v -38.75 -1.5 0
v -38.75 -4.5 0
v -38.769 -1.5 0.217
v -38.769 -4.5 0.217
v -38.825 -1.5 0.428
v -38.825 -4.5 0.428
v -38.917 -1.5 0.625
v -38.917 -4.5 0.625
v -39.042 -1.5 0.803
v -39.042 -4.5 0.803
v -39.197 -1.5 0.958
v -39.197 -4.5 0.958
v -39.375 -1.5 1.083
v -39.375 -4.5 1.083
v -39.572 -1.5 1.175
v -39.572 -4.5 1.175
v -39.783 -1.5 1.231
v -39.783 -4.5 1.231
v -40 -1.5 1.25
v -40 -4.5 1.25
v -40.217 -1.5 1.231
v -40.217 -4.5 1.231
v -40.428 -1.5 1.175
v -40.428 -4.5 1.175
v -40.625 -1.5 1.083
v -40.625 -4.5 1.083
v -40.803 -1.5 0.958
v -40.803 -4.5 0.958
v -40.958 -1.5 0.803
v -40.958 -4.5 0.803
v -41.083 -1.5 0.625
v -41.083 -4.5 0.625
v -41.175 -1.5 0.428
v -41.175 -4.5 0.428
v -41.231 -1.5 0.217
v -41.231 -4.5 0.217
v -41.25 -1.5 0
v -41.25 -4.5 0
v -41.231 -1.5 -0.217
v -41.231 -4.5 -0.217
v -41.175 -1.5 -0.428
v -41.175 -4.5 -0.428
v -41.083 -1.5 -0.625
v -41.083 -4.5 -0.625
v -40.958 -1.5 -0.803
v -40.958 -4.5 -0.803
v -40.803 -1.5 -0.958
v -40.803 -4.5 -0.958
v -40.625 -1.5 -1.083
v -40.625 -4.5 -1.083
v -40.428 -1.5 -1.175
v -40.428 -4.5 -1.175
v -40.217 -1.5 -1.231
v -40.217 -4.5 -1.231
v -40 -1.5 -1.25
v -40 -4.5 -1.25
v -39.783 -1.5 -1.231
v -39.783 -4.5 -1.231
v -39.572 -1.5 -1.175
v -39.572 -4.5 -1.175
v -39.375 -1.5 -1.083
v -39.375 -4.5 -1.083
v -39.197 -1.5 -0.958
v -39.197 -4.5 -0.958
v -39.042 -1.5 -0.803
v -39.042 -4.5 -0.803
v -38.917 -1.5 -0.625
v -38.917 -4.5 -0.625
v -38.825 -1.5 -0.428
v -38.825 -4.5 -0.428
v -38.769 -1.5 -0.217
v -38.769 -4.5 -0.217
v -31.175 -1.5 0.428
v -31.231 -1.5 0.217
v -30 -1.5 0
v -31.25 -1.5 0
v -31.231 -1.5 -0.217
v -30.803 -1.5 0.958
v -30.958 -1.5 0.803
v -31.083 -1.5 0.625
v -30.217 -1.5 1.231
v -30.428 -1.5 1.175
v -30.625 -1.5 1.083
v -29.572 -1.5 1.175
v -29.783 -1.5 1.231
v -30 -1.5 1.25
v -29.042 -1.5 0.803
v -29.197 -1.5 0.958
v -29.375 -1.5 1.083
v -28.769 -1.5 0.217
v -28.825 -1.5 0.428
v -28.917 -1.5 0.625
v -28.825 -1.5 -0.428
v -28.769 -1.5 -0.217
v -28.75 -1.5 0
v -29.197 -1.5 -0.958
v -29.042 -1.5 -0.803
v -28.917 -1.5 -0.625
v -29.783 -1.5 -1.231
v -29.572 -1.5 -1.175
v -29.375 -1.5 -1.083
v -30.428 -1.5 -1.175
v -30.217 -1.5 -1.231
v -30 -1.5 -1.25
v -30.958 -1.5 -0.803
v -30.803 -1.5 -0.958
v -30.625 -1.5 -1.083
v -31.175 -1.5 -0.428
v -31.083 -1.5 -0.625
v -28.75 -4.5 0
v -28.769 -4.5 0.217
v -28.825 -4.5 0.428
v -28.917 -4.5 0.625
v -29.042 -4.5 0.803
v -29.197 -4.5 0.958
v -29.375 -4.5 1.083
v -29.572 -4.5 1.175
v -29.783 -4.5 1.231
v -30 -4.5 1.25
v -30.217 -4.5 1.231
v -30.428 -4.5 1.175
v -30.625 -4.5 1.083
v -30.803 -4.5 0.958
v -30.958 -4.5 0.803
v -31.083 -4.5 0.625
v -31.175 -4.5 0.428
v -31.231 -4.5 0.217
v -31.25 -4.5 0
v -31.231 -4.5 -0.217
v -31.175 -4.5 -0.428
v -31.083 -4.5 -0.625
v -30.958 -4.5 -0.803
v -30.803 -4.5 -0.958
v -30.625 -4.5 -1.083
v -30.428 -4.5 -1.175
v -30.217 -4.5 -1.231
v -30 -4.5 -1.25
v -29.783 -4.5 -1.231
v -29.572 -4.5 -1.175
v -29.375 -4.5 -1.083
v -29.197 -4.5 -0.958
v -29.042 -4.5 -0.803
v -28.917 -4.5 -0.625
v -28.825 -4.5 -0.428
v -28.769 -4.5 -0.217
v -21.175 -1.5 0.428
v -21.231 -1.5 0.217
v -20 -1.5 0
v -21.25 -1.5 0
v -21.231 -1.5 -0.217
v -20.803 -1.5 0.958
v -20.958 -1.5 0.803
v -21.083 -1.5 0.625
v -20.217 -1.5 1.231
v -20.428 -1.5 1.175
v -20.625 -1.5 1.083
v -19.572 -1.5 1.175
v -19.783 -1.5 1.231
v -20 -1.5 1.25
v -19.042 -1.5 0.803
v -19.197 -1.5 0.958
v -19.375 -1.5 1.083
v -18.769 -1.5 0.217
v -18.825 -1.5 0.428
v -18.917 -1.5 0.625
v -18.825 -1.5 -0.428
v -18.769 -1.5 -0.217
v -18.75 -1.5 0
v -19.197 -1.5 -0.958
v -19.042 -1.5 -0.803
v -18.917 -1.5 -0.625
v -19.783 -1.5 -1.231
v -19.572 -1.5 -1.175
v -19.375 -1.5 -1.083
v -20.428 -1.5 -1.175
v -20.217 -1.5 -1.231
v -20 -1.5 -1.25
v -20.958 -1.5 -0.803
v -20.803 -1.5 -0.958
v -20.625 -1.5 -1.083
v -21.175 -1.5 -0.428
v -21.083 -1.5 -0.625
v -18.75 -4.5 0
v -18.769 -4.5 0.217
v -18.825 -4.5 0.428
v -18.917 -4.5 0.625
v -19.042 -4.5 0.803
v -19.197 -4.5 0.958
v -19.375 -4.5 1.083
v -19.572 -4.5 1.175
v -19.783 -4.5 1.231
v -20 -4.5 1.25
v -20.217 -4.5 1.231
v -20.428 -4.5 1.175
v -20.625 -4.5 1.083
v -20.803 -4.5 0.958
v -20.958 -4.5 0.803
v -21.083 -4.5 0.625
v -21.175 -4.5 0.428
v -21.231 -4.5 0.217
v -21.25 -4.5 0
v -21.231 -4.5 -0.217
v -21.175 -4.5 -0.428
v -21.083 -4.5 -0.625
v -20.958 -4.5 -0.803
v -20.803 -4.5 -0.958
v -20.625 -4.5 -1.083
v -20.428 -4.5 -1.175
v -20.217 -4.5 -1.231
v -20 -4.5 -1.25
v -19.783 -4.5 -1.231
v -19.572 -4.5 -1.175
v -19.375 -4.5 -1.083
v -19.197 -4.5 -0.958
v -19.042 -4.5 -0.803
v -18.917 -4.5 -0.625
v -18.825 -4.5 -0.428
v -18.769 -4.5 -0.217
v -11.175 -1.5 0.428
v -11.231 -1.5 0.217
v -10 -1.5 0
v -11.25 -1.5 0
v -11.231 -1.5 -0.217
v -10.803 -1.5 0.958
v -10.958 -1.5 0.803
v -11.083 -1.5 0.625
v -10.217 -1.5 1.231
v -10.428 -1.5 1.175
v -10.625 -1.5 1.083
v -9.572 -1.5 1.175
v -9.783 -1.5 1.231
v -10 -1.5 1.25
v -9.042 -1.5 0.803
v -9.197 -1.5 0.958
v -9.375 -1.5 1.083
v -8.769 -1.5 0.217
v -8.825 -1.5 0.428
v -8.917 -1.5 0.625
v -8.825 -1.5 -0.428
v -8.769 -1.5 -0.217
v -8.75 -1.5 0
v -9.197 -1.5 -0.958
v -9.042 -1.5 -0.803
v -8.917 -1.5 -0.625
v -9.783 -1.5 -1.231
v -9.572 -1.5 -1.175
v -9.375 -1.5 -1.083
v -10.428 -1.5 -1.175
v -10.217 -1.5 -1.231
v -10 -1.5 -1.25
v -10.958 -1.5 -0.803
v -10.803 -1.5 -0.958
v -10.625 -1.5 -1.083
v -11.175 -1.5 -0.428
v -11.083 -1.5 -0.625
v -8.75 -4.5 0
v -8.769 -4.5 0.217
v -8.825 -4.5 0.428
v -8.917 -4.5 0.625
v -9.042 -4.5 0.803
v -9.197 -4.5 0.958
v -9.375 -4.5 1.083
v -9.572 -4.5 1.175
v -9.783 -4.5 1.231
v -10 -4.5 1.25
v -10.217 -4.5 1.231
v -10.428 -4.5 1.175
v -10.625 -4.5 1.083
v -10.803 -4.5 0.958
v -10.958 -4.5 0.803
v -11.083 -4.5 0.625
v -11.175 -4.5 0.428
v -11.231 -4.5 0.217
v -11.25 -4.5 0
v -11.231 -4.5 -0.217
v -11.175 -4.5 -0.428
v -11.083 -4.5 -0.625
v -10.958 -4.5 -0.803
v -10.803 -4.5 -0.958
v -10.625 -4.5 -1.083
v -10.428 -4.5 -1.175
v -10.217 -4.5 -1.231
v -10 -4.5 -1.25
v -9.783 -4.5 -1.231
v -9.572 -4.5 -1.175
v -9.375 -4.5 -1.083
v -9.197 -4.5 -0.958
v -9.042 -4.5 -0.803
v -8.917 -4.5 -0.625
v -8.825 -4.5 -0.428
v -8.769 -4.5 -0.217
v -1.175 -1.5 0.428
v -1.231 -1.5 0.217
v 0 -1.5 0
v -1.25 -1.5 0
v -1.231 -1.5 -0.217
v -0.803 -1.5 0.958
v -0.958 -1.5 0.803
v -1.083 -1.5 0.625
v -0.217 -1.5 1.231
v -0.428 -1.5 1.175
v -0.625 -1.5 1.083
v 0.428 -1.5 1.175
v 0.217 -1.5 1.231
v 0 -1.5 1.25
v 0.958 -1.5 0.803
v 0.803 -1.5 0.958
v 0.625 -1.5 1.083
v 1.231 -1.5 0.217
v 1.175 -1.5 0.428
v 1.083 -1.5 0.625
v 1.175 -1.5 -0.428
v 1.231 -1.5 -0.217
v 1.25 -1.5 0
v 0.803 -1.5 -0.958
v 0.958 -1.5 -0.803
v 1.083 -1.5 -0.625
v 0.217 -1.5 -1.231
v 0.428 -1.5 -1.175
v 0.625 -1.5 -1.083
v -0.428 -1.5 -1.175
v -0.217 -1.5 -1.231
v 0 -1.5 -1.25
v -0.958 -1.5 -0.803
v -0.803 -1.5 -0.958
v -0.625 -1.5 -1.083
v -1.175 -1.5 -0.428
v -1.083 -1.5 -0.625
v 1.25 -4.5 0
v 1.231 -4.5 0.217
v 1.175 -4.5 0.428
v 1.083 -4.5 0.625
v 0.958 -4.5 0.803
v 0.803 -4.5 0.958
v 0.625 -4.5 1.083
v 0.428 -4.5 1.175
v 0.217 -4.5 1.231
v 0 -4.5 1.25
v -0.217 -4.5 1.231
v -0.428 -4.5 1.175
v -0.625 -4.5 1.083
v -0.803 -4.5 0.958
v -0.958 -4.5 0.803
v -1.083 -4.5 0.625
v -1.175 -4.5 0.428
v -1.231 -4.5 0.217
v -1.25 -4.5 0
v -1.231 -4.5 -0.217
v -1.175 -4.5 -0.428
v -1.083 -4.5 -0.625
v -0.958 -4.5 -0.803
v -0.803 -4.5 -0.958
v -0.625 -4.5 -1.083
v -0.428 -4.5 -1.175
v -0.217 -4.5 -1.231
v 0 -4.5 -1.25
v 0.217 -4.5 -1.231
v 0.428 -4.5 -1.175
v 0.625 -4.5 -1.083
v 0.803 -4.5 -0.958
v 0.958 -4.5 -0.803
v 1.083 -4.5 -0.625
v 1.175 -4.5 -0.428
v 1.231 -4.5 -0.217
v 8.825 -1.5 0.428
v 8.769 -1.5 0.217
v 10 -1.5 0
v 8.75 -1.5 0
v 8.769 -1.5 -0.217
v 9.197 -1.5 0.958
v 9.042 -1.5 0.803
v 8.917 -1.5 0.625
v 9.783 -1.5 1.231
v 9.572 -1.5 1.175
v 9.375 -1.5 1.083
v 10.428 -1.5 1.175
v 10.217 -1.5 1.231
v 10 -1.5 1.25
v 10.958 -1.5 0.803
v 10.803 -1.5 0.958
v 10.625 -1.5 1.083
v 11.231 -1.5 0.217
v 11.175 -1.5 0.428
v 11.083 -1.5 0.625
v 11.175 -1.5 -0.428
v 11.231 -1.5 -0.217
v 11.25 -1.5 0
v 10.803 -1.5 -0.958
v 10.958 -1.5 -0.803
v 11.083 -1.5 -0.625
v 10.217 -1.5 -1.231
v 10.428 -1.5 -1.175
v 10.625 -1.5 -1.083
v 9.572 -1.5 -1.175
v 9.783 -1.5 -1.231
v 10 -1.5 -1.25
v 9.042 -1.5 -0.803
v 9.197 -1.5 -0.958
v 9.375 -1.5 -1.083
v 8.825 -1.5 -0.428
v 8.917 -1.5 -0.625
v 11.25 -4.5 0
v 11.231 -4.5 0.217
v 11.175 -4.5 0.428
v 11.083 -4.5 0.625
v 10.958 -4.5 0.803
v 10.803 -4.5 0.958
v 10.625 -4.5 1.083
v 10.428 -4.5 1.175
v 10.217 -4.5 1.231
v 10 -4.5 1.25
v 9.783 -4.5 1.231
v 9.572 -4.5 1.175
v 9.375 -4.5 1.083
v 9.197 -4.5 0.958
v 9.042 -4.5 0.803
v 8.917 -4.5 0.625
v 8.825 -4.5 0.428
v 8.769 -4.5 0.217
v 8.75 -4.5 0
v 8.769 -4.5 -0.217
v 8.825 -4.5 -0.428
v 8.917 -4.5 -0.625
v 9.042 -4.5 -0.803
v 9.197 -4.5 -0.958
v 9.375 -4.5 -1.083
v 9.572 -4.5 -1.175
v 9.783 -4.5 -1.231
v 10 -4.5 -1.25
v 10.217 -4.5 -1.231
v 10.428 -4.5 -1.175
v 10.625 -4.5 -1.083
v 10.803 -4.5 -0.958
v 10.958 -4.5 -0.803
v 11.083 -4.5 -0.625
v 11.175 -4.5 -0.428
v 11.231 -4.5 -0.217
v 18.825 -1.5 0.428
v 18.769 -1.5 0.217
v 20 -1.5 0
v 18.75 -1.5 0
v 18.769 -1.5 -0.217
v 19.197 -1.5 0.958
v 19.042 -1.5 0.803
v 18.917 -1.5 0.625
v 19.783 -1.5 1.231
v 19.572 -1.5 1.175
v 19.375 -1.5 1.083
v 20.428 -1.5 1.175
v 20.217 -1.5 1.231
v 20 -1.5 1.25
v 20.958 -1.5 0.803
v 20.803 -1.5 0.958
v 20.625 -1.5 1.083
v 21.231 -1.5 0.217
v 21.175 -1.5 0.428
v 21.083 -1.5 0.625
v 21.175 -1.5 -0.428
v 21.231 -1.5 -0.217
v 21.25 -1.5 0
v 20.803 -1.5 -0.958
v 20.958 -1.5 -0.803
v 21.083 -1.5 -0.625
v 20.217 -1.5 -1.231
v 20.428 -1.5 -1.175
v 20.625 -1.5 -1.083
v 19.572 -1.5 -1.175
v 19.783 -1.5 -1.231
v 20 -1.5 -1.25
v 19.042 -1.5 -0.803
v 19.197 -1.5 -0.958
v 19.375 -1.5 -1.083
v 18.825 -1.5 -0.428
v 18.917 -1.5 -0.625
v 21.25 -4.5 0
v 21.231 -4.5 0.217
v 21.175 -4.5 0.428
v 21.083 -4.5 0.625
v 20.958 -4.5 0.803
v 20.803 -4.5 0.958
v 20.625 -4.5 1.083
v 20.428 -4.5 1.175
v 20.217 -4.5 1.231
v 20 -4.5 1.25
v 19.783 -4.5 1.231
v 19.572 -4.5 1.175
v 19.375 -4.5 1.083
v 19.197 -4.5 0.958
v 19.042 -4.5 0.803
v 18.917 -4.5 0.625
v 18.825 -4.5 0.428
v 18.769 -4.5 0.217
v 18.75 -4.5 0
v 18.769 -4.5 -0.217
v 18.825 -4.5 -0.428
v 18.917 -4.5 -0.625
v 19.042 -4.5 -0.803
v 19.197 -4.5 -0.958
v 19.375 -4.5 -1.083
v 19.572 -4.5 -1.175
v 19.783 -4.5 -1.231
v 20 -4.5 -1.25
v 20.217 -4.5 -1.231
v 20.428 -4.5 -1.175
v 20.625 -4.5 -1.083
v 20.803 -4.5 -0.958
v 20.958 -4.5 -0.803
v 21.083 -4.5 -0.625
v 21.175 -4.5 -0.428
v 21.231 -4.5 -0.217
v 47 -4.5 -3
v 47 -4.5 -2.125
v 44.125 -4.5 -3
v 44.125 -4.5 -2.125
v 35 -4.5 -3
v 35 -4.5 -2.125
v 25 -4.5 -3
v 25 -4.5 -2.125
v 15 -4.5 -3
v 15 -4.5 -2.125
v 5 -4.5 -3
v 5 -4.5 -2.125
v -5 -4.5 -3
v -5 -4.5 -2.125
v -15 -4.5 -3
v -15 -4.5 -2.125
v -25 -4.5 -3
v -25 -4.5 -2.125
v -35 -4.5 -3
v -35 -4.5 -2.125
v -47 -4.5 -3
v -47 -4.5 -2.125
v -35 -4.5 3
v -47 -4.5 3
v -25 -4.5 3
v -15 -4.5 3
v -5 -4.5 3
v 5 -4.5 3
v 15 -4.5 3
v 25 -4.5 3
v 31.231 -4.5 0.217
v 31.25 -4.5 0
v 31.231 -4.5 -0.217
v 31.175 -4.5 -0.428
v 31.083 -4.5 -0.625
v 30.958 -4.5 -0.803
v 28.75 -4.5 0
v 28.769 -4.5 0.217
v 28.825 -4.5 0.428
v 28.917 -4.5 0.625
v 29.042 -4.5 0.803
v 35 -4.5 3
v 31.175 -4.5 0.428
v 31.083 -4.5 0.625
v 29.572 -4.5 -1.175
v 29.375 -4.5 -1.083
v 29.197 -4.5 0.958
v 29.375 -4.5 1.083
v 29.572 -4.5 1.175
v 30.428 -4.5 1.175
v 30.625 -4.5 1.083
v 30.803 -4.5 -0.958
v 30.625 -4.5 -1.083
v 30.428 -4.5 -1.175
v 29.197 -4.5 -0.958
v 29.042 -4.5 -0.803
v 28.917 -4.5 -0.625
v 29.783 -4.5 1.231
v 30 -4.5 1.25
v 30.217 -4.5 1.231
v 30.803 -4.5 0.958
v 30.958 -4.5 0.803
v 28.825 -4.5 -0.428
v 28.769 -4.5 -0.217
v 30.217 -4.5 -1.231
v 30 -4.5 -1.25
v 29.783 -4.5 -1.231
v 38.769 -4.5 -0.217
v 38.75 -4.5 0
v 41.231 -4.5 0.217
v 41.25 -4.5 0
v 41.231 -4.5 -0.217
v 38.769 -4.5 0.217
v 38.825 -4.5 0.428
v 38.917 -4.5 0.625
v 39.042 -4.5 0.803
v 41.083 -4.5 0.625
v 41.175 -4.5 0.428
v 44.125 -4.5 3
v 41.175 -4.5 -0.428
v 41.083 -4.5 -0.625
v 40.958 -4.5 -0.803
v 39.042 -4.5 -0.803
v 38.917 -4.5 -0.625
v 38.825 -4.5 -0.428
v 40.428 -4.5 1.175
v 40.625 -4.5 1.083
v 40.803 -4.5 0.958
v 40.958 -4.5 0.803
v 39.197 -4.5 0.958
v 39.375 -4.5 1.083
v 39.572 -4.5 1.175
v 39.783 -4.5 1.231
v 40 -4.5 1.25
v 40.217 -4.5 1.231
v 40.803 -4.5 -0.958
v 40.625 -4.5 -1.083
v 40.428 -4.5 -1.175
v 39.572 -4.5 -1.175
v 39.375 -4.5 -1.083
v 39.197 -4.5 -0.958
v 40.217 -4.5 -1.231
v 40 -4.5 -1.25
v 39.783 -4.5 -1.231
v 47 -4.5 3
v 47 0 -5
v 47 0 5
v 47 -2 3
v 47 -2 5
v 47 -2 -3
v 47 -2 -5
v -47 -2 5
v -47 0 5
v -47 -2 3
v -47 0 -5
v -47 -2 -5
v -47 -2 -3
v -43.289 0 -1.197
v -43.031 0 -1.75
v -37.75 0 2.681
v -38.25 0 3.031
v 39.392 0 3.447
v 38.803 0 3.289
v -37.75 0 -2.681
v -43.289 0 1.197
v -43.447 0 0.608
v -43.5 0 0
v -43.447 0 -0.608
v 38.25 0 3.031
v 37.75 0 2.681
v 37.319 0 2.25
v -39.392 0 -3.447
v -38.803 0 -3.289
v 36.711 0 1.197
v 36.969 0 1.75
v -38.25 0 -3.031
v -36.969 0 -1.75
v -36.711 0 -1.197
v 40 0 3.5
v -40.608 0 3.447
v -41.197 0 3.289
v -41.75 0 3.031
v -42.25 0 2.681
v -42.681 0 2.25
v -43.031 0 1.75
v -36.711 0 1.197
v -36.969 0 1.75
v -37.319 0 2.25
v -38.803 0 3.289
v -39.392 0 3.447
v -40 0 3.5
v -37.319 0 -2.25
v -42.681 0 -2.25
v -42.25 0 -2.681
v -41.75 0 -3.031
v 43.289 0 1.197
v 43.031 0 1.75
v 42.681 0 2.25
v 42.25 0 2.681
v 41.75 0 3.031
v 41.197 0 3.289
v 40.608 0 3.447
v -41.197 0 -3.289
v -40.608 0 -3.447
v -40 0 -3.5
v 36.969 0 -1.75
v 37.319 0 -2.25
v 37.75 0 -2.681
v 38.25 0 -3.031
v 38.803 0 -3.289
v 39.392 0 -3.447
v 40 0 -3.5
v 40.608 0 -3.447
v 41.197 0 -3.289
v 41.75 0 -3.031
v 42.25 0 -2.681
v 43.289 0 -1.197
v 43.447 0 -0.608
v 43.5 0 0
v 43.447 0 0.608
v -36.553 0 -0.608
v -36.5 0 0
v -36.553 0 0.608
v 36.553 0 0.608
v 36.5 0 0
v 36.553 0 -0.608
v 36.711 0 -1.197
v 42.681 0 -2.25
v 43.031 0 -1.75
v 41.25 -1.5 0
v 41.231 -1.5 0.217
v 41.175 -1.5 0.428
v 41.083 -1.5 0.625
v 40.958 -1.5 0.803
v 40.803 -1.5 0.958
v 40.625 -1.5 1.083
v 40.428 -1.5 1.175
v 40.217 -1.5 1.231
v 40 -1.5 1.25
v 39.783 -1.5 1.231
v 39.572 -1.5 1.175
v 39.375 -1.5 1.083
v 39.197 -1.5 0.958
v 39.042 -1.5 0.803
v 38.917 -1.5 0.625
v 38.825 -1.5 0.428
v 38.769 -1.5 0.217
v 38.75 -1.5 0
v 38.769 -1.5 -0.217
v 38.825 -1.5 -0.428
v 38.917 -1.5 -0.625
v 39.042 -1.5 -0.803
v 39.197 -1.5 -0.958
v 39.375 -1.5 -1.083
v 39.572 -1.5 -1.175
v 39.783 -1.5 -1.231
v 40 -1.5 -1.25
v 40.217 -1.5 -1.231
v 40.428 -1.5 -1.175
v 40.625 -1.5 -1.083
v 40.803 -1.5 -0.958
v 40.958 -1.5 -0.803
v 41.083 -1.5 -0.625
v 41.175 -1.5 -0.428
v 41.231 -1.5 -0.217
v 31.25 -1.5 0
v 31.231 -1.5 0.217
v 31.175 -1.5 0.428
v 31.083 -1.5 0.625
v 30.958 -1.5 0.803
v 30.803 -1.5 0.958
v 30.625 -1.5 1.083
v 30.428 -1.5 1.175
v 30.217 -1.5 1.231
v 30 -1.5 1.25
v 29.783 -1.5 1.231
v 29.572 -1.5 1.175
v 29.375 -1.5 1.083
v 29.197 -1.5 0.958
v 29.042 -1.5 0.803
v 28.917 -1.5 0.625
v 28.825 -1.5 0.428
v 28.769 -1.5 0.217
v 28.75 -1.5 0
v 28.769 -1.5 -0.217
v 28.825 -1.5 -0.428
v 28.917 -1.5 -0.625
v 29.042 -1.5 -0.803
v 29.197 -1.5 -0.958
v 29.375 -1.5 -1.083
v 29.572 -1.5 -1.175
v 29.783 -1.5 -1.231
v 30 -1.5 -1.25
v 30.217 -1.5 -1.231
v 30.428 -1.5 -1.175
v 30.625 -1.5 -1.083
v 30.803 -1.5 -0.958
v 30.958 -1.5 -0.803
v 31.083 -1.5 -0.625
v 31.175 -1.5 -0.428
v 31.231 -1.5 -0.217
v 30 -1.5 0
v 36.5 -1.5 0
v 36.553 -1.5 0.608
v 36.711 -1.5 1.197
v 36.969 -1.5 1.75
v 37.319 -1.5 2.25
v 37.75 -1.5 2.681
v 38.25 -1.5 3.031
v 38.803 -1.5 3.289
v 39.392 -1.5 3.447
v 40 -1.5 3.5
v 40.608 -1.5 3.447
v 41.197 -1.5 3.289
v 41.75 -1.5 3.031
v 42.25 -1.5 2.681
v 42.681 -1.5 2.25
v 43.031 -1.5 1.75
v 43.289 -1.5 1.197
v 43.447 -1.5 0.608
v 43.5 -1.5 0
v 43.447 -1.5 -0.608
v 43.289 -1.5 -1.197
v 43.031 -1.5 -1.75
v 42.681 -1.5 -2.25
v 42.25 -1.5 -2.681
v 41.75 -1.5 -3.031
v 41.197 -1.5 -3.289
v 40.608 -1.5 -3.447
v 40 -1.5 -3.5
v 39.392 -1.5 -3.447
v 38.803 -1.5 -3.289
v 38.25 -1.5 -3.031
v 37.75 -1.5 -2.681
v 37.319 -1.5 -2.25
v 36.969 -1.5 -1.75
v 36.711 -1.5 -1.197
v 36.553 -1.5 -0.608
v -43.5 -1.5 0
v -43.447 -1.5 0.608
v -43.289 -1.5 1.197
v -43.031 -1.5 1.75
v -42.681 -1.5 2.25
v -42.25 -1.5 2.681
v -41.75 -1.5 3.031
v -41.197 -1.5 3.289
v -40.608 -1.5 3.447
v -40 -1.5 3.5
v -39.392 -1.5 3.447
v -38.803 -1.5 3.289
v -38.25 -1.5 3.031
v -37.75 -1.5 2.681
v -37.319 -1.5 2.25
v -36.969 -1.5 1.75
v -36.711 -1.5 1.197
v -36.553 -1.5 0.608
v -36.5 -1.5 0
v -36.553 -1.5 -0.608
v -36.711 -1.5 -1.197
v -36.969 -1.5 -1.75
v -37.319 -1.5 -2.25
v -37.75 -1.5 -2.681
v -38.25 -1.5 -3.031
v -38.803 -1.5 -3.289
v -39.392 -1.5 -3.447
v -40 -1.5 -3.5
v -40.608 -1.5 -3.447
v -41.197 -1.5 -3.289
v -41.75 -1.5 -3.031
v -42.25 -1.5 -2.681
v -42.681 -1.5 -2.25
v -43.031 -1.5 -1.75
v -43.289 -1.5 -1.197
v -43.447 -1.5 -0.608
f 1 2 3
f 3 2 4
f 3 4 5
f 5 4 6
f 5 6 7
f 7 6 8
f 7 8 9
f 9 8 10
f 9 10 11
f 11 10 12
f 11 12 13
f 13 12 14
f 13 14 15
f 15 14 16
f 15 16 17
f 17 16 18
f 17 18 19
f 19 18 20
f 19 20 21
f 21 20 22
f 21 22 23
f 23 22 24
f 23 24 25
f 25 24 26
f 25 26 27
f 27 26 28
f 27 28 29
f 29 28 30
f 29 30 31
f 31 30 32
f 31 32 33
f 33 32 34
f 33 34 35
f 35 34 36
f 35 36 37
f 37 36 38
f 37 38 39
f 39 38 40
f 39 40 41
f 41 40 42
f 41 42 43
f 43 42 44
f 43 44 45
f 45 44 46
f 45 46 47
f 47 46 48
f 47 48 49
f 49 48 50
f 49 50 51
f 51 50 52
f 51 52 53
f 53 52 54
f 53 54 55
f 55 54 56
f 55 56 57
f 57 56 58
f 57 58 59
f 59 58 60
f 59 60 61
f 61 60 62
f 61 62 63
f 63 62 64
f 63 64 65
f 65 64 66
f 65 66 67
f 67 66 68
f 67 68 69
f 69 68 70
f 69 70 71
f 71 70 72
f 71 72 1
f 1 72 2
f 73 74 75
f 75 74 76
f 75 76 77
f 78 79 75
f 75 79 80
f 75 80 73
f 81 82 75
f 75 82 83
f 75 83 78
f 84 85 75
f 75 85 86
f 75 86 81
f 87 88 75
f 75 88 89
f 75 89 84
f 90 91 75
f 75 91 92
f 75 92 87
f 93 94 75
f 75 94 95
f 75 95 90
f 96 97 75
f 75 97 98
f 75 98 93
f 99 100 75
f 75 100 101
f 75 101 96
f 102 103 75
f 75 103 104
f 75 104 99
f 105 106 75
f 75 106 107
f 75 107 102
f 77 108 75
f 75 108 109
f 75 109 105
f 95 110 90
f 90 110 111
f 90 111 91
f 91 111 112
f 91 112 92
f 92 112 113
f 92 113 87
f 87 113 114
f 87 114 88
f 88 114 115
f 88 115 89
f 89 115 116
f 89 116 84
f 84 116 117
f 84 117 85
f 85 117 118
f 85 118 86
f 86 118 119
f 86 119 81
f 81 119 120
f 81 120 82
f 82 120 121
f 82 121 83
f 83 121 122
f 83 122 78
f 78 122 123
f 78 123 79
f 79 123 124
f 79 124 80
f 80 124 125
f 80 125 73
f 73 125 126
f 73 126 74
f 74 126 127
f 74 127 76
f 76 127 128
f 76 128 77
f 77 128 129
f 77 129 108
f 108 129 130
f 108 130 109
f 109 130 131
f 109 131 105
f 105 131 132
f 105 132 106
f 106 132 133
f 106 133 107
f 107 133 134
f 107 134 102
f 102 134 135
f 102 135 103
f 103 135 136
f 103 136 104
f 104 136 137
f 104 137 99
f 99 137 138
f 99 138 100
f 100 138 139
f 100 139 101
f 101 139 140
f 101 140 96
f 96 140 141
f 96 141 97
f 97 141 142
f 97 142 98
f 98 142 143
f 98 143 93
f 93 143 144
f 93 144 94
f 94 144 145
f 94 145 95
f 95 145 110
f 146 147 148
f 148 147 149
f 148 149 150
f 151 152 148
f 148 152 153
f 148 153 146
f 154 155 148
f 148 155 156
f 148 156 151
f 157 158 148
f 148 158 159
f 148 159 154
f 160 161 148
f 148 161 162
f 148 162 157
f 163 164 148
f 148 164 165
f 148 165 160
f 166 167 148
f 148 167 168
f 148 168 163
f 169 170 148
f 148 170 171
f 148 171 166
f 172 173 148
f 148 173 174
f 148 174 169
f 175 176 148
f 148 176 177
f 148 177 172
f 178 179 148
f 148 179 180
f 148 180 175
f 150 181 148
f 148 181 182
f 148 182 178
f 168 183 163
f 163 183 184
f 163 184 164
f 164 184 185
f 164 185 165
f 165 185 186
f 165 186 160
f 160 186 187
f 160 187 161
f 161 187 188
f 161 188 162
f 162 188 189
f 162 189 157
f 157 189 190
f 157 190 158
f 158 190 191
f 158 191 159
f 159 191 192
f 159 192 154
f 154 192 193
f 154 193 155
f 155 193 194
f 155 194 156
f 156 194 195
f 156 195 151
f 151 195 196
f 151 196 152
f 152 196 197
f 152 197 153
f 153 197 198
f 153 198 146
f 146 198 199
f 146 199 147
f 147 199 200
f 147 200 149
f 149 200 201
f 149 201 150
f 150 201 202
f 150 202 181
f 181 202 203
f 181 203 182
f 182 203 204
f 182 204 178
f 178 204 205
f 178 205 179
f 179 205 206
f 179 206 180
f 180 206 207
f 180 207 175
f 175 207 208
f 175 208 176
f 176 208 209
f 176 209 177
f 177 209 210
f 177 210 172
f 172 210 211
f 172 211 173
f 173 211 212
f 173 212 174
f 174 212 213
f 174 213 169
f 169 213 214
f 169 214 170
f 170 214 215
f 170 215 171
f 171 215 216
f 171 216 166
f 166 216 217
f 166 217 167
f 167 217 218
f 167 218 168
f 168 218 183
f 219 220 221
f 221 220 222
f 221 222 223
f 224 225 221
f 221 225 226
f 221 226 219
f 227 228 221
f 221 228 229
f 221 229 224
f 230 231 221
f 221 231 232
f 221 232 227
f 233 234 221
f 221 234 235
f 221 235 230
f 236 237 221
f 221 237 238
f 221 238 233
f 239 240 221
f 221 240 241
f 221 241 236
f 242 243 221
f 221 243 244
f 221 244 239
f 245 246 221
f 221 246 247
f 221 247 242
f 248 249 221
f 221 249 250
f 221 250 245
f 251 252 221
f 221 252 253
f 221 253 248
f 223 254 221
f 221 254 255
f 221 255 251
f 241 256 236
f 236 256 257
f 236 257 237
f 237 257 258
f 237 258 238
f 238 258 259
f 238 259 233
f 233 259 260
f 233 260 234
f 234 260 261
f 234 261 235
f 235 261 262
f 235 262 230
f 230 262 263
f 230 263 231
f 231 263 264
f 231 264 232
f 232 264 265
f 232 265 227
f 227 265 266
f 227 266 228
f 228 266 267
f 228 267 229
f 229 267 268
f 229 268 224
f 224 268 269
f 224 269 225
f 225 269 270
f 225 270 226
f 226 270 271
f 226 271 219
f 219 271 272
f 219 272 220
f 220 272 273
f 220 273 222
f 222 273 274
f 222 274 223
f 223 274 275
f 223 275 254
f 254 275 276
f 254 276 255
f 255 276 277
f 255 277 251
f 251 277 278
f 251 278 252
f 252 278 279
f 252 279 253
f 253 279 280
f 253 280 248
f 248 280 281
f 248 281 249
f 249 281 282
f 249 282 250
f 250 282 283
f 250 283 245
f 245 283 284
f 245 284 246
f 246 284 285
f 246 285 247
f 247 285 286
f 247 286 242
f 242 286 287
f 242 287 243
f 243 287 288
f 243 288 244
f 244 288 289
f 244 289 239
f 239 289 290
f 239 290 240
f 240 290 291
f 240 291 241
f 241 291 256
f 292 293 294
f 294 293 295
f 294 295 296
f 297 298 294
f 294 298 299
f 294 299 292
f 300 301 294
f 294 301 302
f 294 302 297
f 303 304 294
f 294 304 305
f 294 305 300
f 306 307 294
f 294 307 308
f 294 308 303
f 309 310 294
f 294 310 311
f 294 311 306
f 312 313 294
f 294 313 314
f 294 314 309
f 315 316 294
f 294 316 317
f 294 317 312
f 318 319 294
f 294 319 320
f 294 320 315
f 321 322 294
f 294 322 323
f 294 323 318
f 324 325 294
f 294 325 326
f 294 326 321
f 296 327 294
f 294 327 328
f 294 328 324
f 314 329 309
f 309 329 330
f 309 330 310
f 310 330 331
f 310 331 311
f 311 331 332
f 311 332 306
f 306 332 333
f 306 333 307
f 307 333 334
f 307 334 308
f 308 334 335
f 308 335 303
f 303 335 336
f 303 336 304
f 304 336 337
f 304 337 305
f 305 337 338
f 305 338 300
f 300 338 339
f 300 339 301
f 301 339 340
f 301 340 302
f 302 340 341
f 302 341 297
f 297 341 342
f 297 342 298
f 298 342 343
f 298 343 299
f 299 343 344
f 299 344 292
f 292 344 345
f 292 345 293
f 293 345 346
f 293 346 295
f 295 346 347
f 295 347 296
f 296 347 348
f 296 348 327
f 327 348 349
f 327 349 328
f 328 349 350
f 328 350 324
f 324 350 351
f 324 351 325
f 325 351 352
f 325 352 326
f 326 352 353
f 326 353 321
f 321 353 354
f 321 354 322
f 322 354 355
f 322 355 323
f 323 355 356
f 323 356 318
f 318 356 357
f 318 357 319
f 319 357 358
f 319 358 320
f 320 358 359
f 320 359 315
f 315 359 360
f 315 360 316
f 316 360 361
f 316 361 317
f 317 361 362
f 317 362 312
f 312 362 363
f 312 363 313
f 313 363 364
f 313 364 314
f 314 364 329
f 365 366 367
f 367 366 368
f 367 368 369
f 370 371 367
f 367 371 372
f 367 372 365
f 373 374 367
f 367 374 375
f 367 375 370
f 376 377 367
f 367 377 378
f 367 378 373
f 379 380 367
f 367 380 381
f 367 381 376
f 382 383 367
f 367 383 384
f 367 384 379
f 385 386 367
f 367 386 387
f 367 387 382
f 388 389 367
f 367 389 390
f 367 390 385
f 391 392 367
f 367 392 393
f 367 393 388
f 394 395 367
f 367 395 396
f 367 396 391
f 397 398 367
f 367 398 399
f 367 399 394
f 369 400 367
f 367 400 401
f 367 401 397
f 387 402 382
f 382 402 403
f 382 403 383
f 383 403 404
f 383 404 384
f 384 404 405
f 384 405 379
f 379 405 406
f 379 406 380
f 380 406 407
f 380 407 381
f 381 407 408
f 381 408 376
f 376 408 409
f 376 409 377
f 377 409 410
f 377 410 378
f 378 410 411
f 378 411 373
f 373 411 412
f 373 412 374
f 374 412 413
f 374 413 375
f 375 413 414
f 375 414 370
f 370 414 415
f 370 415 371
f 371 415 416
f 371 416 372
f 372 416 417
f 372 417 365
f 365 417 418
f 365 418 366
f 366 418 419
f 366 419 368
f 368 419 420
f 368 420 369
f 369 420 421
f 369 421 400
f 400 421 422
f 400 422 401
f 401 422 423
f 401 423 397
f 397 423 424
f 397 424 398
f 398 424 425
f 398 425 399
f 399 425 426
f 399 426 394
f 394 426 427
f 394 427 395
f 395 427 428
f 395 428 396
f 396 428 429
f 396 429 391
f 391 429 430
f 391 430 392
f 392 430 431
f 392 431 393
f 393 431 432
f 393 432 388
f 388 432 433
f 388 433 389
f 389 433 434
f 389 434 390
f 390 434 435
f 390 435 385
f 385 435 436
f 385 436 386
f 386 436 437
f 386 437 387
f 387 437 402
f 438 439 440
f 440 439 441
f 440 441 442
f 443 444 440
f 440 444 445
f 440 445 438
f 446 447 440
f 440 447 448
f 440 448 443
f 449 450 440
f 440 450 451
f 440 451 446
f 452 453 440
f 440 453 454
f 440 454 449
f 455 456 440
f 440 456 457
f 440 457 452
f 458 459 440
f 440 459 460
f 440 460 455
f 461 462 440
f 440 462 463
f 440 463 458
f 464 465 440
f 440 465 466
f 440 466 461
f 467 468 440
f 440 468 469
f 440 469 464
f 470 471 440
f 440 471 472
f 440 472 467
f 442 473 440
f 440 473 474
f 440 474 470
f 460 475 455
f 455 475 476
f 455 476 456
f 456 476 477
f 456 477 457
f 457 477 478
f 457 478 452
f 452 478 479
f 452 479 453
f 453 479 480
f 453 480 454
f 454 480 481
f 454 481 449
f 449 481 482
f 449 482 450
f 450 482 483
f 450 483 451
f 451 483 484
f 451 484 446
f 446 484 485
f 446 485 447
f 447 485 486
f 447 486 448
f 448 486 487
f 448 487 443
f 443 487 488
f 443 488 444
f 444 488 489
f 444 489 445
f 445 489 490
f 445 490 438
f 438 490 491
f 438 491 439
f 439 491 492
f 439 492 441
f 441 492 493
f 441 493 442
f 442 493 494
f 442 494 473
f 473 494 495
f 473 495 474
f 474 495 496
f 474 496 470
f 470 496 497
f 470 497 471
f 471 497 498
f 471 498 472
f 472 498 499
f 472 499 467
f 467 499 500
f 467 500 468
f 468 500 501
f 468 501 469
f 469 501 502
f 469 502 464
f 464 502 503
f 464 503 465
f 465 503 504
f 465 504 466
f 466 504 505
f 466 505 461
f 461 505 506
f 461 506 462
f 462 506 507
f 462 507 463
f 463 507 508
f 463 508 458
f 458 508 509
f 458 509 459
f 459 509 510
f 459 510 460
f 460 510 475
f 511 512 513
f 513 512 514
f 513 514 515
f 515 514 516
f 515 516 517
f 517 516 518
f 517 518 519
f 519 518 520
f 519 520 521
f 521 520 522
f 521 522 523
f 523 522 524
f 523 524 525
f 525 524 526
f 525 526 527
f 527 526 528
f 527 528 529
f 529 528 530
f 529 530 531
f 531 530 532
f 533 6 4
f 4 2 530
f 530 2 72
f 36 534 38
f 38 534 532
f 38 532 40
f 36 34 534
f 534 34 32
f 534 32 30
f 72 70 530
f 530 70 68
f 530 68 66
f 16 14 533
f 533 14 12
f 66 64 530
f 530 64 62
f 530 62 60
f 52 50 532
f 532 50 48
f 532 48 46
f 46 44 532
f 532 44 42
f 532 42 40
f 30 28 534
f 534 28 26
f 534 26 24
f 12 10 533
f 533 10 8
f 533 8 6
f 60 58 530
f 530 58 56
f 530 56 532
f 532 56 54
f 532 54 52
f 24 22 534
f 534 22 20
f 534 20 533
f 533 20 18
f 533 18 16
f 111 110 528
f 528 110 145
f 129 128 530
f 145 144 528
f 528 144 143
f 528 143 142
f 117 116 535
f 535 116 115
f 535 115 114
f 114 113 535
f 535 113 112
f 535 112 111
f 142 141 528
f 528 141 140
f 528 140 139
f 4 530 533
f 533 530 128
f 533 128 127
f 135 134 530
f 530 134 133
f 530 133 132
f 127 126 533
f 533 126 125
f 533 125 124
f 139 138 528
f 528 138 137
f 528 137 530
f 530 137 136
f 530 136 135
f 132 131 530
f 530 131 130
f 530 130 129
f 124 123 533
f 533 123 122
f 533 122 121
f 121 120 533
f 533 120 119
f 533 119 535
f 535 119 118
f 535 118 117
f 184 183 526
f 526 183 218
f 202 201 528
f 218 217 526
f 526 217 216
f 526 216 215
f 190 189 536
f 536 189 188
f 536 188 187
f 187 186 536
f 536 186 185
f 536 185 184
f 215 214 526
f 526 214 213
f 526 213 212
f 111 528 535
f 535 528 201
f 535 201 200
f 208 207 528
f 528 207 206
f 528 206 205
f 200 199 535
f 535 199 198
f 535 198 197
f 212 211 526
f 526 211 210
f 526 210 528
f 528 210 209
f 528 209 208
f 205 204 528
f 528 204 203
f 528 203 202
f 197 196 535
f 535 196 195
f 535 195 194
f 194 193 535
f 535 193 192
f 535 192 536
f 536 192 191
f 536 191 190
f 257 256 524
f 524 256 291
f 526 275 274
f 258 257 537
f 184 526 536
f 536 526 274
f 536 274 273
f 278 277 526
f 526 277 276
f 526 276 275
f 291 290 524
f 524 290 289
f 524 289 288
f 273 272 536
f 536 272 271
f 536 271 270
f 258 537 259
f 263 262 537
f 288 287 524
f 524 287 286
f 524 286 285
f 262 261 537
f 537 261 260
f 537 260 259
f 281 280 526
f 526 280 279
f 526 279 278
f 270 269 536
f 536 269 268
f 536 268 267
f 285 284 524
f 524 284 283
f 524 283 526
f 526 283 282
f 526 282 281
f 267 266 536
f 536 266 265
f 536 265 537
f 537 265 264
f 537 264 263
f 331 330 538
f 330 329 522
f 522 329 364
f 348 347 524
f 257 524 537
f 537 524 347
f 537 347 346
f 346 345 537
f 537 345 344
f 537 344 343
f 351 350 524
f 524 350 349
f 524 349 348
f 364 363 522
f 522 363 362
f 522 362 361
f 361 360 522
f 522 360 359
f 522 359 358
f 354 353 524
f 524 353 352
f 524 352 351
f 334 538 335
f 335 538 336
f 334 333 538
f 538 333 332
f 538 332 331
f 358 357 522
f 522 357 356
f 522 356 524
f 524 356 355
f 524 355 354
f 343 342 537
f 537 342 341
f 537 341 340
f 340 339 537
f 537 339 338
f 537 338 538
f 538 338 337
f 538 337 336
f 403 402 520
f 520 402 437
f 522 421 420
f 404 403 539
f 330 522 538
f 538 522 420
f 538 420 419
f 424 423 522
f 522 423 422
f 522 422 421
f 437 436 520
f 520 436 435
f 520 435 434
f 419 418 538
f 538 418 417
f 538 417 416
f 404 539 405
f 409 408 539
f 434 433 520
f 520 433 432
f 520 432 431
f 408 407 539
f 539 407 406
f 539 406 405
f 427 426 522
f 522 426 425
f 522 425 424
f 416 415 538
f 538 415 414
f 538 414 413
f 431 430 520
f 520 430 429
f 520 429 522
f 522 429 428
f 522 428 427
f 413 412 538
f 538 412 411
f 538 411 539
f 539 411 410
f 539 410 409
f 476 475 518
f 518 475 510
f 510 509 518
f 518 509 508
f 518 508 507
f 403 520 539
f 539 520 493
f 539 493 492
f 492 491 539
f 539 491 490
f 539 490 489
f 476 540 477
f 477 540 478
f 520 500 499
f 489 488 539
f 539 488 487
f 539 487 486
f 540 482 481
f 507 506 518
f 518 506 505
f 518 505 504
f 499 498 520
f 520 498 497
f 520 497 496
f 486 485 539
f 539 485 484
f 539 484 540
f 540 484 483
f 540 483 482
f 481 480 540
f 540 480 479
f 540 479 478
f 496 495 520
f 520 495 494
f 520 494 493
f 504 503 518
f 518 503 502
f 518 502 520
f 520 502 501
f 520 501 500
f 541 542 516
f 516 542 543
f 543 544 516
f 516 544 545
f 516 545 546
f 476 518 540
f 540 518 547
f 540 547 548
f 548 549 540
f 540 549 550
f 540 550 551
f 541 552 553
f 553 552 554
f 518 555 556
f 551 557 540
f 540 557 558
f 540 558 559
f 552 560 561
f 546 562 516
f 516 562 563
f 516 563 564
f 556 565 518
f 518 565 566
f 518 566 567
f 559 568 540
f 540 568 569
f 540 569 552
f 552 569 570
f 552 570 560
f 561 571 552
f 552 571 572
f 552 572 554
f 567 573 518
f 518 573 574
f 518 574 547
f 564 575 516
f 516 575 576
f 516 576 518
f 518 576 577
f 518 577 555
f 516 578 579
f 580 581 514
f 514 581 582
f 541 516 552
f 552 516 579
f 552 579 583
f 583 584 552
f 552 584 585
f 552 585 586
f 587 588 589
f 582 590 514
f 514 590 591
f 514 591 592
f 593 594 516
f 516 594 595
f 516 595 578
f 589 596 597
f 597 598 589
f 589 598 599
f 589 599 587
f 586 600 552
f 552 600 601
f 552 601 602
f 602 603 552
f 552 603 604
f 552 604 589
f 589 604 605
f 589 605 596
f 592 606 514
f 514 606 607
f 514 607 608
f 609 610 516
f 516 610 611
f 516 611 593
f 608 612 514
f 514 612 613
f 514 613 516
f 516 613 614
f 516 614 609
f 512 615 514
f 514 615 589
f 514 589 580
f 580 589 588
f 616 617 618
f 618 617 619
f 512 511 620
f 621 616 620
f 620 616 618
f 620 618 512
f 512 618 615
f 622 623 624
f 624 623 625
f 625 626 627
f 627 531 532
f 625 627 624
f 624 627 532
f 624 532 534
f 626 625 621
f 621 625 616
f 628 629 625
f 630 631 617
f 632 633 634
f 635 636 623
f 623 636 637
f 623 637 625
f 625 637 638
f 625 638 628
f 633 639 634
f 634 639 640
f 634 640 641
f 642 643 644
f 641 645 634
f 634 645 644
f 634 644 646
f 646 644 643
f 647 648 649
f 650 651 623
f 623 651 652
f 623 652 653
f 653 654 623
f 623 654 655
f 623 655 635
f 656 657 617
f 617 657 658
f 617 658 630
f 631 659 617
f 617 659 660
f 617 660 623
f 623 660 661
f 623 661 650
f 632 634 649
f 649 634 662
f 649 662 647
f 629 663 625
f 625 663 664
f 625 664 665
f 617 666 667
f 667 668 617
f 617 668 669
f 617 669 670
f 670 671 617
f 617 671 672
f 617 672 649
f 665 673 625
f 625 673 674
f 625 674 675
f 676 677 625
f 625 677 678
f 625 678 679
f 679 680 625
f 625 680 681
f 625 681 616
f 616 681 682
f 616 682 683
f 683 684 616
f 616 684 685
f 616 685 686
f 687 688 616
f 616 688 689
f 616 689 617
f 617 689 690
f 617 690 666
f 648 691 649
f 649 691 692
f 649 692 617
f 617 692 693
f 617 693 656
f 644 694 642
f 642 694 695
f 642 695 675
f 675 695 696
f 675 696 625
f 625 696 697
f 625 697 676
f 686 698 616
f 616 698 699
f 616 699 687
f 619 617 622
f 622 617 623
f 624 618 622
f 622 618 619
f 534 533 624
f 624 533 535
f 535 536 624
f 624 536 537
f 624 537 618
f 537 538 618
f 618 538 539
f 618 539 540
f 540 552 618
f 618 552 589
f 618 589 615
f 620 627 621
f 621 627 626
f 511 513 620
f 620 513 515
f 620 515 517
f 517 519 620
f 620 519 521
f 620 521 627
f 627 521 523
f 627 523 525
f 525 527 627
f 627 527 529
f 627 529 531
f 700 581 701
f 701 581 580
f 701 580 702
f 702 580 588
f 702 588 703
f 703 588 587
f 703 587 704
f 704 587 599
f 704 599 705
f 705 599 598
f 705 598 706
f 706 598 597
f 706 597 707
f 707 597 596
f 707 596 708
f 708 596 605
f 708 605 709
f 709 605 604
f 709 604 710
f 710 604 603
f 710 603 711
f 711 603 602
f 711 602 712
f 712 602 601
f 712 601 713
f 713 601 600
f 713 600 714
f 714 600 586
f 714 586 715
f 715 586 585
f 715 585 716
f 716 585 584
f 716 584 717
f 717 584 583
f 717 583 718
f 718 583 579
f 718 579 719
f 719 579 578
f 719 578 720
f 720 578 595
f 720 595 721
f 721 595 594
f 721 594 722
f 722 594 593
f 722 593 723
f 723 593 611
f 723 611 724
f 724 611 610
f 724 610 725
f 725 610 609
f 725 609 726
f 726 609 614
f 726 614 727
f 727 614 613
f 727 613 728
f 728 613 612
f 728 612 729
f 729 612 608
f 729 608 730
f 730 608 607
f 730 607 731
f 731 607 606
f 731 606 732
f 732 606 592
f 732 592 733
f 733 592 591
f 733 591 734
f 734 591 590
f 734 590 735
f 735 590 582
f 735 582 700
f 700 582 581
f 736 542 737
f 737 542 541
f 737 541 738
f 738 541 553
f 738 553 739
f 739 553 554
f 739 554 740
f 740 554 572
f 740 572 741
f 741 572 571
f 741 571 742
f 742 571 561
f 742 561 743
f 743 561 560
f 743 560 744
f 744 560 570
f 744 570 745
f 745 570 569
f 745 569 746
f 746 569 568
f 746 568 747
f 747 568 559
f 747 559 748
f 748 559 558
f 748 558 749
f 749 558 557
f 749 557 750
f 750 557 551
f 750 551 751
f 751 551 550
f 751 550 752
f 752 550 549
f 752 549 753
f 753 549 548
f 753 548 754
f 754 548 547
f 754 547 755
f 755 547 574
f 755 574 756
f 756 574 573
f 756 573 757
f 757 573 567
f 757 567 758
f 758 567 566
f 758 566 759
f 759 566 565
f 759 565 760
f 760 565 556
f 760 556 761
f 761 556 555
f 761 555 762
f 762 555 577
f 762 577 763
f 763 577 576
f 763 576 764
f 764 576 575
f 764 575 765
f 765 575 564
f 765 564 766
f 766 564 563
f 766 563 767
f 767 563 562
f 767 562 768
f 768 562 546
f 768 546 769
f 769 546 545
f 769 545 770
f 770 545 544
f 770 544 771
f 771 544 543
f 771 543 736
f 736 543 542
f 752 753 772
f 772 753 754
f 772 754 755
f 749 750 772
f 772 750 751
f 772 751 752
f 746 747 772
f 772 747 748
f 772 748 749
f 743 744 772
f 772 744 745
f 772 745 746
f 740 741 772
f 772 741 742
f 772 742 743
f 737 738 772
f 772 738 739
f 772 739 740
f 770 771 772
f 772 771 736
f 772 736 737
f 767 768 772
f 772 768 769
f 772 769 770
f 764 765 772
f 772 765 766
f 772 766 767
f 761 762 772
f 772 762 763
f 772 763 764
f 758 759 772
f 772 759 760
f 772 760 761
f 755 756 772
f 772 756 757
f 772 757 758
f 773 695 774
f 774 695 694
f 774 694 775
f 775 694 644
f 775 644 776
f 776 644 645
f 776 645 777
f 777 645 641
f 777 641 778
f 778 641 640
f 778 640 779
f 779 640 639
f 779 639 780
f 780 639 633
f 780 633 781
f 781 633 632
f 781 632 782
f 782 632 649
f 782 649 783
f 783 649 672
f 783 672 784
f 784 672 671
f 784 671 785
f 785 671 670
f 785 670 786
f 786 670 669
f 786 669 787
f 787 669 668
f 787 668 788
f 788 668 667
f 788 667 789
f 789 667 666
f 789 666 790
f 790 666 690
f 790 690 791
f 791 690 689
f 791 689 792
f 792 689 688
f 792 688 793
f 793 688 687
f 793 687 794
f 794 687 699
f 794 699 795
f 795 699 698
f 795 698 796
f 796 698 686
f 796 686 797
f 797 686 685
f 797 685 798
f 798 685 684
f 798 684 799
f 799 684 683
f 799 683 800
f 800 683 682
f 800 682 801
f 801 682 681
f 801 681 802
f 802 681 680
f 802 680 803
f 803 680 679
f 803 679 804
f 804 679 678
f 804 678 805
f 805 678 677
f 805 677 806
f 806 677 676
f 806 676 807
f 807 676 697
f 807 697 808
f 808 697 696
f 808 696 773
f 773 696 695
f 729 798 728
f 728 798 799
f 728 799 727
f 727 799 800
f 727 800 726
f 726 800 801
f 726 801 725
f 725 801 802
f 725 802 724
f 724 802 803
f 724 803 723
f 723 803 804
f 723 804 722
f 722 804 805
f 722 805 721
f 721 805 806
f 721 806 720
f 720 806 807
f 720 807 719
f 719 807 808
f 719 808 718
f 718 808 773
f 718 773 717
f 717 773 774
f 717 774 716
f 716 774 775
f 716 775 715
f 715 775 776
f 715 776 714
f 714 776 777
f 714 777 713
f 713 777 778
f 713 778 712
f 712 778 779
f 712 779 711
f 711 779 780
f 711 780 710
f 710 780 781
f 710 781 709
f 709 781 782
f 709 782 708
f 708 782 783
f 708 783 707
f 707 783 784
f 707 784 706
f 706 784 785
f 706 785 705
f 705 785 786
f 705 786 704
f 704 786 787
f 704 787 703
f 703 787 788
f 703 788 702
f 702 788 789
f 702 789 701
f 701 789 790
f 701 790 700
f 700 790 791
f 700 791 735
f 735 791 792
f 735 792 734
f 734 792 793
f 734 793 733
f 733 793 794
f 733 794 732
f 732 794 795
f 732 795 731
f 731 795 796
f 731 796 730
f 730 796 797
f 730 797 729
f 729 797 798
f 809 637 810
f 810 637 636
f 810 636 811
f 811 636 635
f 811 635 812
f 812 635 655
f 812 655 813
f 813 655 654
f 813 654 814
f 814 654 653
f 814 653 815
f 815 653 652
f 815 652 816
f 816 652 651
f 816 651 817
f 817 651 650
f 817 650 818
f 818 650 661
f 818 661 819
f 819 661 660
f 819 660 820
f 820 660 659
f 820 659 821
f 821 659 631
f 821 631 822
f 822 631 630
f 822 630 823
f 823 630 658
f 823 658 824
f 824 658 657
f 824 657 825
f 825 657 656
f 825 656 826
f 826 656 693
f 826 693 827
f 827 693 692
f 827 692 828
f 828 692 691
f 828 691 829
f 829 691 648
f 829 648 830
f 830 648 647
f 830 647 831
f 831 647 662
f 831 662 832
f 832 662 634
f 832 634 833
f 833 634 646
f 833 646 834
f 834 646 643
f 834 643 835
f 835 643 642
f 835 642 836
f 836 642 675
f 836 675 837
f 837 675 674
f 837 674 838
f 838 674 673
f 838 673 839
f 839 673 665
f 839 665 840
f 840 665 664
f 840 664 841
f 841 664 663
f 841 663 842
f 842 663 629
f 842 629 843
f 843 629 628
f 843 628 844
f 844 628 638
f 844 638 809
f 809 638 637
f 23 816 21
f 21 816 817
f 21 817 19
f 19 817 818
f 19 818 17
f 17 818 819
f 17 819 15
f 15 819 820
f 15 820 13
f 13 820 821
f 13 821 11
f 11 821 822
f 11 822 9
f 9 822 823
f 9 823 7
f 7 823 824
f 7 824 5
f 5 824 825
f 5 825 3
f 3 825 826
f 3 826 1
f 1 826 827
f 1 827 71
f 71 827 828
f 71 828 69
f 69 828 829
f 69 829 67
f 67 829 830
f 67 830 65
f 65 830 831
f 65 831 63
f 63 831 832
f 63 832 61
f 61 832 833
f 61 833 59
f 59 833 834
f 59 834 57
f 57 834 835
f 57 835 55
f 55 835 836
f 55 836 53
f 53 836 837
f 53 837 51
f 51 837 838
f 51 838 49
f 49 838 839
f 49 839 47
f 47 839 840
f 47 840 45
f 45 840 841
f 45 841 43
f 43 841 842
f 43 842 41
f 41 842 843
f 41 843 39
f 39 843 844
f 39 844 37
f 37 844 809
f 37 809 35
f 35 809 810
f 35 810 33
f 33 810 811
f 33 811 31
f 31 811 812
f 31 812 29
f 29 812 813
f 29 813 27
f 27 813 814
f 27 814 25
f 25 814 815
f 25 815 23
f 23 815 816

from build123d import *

# Parameters (mm, degrees)
SKETCH1_W          = 94
SKETCH1_H          = 4.5
MAIN_DEPTH         = 5
SKETCH4_W          = 94
SKETCH4_H          = 2.5
WINDOWSLOT1_DEPTH  = 2
SKETCH6_R          = 1.25
CUT_EXTRUDE2_DEPTH = 3
LPATTERN1_COUNT    = 9
LPATTERN1_PITCH    = 10
SKETCH7_R          = 3.5
CUT_EXTRUDE4_DEPTH = 1.5


with BuildPart() as part:
    # Sketch1 → Main (new body, symmetric)
    with BuildSketch(Plane.XY):
        with Locations((0, -2.25)):
            Rectangle(SKETCH1_W, SKETCH1_H)
    extrude(amount=MAIN_DEPTH, both=True)

    # Sketch4 → WindowSlot1 (cut)
    with BuildSketch(Plane.XY.offset(5)):
        with Locations((0, -3.25)):
            Rectangle(SKETCH4_W, SKETCH4_H)
    windowslot1 = extrude(amount=-WINDOWSLOT1_DEPTH, mode=Mode.SUBTRACT)

    # Mirror1: WindowSlot1 across plane
    add(windowslot1.mirror(Plane.XY), mode=Mode.SUBTRACT)

    # Sketch6 → Cut-Extrude2 (cut)
    with BuildSketch(Plane.ZX.offset(-4.5)):
        with Locations((0, 40)):
            Circle(SKETCH6_R)
    cut_extrude2 = extrude(amount=CUT_EXTRUDE2_DEPTH, mode=Mode.SUBTRACT)

    # LPattern1: Cut-Extrude2 ×9
    with Locations(*[(-i * LPATTERN1_PITCH, 0, 0) for i in range(1, LPATTERN1_COUNT)]):
        add(cut_extrude2, mode=Mode.SUBTRACT)

    # Sketch7 → Cut-Extrude4 (cut)
    with BuildSketch(Plane.ZX):
        with Locations((0, 40)):
            Circle(SKETCH7_R)
        with Locations((0, -40)):
            Circle(SKETCH7_R)
    extrude(amount=-CUT_EXTRUDE4_DEPTH, mode=Mode.SUBTRACT)


solid = part.part
